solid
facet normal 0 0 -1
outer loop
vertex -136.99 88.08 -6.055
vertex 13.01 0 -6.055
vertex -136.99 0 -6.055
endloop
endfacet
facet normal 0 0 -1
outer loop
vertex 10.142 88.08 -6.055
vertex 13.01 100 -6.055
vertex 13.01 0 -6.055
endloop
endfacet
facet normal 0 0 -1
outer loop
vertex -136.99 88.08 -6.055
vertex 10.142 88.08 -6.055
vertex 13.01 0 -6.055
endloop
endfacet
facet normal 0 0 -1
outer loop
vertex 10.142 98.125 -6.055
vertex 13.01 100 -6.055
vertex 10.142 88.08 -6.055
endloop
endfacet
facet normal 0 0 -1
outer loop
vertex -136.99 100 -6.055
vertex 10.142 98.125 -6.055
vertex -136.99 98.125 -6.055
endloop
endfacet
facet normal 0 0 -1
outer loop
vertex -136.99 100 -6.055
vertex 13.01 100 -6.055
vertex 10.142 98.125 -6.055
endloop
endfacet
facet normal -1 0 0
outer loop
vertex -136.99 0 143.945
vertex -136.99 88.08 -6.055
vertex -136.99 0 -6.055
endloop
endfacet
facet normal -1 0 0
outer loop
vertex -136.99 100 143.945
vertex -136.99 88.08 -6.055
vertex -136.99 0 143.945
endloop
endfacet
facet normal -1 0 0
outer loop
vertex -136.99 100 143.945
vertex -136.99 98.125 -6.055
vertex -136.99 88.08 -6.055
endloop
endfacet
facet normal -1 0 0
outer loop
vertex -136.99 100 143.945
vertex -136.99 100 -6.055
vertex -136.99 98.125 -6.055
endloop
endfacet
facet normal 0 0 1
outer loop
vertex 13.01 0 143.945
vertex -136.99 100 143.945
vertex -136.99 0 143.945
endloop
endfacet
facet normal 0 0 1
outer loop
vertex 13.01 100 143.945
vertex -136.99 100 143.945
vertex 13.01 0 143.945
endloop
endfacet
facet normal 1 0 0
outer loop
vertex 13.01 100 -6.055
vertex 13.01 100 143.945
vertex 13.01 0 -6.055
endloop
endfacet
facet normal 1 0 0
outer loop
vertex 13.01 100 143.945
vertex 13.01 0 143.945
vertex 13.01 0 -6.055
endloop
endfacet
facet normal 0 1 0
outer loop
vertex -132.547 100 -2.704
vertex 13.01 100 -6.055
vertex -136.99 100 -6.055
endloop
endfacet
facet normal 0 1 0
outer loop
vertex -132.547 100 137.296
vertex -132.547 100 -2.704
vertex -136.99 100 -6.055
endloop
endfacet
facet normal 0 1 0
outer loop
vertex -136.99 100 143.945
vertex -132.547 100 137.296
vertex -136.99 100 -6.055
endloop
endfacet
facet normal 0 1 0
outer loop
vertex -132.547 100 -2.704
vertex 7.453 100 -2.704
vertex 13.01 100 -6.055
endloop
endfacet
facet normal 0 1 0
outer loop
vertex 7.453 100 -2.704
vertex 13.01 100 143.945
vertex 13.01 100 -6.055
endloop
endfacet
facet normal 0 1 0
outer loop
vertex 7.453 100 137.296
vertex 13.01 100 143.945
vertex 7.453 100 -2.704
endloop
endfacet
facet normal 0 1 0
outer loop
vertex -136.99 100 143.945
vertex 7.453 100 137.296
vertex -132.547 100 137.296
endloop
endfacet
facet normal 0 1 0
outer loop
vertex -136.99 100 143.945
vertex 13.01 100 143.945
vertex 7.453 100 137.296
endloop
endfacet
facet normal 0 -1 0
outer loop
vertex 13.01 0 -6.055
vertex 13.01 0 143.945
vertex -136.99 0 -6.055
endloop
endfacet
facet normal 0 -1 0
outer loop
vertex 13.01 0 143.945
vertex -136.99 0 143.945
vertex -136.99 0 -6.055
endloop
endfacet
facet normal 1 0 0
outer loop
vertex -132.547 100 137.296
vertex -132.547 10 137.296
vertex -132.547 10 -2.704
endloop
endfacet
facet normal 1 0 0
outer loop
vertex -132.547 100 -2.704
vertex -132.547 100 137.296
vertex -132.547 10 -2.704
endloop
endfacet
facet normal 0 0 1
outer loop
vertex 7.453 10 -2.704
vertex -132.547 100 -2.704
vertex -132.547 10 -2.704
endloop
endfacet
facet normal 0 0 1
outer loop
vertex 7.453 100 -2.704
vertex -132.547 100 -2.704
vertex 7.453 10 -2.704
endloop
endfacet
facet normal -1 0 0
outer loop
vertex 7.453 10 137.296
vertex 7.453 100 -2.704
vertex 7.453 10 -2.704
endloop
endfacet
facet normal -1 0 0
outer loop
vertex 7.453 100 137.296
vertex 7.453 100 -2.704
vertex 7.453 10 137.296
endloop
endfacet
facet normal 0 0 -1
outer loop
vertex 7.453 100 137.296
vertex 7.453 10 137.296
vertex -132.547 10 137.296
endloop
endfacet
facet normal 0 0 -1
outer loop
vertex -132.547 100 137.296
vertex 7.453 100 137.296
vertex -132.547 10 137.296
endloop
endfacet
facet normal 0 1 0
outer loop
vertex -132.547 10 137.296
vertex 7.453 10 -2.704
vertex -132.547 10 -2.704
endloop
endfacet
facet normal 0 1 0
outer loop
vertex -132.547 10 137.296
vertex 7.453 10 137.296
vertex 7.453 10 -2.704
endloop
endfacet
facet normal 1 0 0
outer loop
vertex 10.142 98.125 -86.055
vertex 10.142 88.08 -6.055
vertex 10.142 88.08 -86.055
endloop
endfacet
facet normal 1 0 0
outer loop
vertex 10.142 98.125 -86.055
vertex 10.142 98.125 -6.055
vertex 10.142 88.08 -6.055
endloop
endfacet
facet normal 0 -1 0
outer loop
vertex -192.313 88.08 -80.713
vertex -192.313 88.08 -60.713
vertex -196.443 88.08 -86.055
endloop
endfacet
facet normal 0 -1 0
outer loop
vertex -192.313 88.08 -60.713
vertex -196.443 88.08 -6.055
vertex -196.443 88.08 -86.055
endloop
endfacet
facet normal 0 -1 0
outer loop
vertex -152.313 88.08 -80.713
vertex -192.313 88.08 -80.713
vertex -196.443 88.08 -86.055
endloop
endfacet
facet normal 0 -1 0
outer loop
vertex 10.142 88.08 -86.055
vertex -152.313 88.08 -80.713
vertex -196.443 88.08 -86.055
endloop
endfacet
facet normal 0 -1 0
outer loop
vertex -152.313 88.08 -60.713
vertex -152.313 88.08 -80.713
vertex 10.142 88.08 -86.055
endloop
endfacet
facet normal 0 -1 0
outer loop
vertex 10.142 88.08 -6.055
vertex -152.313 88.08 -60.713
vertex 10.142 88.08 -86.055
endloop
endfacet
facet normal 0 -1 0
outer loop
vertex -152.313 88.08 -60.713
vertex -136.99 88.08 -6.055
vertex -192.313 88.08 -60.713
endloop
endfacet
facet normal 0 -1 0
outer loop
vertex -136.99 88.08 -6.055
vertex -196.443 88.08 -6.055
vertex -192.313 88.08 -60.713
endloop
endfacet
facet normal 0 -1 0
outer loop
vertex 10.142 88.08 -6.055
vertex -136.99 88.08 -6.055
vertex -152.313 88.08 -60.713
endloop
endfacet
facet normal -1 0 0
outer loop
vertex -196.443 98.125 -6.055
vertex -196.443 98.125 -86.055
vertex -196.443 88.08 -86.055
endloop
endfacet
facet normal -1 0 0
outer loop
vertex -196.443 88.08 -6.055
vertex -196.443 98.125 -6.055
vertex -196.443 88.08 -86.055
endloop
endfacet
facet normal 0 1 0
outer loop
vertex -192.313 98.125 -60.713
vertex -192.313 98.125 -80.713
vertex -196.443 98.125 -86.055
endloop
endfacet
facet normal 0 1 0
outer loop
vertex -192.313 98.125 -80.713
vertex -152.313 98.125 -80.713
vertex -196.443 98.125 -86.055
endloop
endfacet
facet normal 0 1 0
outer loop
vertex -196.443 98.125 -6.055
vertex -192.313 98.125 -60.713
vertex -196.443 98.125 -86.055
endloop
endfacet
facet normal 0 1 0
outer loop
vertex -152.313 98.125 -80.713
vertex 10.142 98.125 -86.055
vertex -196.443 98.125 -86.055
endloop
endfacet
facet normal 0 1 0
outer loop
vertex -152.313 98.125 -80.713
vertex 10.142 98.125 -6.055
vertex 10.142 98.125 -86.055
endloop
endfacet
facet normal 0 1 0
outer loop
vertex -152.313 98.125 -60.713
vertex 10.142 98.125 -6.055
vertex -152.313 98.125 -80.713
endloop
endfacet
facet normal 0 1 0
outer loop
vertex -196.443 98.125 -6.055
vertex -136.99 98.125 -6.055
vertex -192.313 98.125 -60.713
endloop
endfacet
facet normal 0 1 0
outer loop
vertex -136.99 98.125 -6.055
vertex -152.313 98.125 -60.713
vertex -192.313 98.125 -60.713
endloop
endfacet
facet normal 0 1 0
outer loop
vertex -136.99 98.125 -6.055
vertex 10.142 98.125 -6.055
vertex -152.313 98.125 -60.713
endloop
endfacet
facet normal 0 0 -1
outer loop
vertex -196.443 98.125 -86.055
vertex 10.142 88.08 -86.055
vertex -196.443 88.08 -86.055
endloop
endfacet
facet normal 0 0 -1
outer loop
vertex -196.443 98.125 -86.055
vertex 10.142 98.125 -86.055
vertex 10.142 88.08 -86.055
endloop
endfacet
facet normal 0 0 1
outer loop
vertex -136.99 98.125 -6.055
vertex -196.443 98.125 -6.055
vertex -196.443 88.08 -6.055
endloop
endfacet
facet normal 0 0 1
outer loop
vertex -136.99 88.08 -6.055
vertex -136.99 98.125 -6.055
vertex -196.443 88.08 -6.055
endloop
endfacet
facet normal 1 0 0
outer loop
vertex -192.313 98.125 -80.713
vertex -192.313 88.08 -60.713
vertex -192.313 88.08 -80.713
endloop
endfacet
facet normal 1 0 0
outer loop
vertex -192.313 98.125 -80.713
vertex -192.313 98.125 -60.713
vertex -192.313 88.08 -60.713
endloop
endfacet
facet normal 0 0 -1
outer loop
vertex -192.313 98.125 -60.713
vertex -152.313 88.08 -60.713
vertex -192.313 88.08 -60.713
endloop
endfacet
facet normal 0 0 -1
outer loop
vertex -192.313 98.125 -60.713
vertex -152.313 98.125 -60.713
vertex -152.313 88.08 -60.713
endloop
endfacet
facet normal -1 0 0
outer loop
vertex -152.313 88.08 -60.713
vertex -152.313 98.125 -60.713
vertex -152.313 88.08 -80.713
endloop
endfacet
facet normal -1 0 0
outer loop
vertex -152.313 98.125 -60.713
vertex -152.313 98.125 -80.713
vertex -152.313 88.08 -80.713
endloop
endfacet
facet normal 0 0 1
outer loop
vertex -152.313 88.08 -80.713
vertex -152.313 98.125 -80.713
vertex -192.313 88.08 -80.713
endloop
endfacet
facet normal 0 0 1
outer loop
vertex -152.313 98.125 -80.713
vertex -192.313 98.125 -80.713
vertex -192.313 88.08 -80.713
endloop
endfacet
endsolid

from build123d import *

# Parameters (mm, degrees)
SKETCH_1_W          = 150
SKETCH_1_H          = 150
EXTRUDE_1_DEPTH     = 100
SKETCH_2_W          = 140
SKETCH_2_H          = 140
CUT_EXTRUDE_1_DEPTH = 90
SKETCH_3_W          = 206.584523794
SKETCH_3_H          = 10.04468641
EXTRUDE_2_DEPTH     = 80
SKETCH_4_W          = 40
SKETCH_4_H          = 20
CUT_EXTRUDE_2_DEPTH = 20


with BuildPart() as part:
    # 草图1 → 凸台-拉伸1 (new body)
    with BuildSketch(Plane(origin=(0, 0, 0), x_dir=(1, 0, 0), z_dir=(0, 1, 0))):
        with Locations((-61.989619377, -68.944636678)):
            Rectangle(SKETCH_1_W, SKETCH_1_H)
    extrude(amount=EXTRUDE_1_DEPTH)

    # 草图2 → 切除-拉伸1 (cut)
    with BuildSketch(Plane(origin=(0, 100, 0), x_dir=(1, 0, 0), z_dir=(0, 1, 0))):
        with Locations((-62.547413878, -67.29555388)):
            Rectangle(SKETCH_2_W, SKETCH_2_H)
    extrude(amount=-CUT_EXTRUDE_1_DEPTH, mode=Mode.SUBTRACT)

    # 草图3 → 凸台-拉伸2 (add)
    with BuildSketch(Plane(origin=(0, 0, -6.055363322), x_dir=(-1, 0, 0), z_dir=(0, 0, -1))):
        with Locations((93.150620362, 93.10231994)):
            Rectangle(SKETCH_3_W, SKETCH_3_H)
    extrude(amount=EXTRUDE_2_DEPTH)

    # 草图4 → 切除-拉伸2 (cut)
    with BuildSketch(Plane.XZ.offset(-88.079976735)):
        with Locations((-172.313011016, -70.712776271)):
            Rectangle(SKETCH_4_W, SKETCH_4_H)
    extrude(amount=-CUT_EXTRUDE_2_DEPTH, mode=Mode.SUBTRACT)


solid = part.part
